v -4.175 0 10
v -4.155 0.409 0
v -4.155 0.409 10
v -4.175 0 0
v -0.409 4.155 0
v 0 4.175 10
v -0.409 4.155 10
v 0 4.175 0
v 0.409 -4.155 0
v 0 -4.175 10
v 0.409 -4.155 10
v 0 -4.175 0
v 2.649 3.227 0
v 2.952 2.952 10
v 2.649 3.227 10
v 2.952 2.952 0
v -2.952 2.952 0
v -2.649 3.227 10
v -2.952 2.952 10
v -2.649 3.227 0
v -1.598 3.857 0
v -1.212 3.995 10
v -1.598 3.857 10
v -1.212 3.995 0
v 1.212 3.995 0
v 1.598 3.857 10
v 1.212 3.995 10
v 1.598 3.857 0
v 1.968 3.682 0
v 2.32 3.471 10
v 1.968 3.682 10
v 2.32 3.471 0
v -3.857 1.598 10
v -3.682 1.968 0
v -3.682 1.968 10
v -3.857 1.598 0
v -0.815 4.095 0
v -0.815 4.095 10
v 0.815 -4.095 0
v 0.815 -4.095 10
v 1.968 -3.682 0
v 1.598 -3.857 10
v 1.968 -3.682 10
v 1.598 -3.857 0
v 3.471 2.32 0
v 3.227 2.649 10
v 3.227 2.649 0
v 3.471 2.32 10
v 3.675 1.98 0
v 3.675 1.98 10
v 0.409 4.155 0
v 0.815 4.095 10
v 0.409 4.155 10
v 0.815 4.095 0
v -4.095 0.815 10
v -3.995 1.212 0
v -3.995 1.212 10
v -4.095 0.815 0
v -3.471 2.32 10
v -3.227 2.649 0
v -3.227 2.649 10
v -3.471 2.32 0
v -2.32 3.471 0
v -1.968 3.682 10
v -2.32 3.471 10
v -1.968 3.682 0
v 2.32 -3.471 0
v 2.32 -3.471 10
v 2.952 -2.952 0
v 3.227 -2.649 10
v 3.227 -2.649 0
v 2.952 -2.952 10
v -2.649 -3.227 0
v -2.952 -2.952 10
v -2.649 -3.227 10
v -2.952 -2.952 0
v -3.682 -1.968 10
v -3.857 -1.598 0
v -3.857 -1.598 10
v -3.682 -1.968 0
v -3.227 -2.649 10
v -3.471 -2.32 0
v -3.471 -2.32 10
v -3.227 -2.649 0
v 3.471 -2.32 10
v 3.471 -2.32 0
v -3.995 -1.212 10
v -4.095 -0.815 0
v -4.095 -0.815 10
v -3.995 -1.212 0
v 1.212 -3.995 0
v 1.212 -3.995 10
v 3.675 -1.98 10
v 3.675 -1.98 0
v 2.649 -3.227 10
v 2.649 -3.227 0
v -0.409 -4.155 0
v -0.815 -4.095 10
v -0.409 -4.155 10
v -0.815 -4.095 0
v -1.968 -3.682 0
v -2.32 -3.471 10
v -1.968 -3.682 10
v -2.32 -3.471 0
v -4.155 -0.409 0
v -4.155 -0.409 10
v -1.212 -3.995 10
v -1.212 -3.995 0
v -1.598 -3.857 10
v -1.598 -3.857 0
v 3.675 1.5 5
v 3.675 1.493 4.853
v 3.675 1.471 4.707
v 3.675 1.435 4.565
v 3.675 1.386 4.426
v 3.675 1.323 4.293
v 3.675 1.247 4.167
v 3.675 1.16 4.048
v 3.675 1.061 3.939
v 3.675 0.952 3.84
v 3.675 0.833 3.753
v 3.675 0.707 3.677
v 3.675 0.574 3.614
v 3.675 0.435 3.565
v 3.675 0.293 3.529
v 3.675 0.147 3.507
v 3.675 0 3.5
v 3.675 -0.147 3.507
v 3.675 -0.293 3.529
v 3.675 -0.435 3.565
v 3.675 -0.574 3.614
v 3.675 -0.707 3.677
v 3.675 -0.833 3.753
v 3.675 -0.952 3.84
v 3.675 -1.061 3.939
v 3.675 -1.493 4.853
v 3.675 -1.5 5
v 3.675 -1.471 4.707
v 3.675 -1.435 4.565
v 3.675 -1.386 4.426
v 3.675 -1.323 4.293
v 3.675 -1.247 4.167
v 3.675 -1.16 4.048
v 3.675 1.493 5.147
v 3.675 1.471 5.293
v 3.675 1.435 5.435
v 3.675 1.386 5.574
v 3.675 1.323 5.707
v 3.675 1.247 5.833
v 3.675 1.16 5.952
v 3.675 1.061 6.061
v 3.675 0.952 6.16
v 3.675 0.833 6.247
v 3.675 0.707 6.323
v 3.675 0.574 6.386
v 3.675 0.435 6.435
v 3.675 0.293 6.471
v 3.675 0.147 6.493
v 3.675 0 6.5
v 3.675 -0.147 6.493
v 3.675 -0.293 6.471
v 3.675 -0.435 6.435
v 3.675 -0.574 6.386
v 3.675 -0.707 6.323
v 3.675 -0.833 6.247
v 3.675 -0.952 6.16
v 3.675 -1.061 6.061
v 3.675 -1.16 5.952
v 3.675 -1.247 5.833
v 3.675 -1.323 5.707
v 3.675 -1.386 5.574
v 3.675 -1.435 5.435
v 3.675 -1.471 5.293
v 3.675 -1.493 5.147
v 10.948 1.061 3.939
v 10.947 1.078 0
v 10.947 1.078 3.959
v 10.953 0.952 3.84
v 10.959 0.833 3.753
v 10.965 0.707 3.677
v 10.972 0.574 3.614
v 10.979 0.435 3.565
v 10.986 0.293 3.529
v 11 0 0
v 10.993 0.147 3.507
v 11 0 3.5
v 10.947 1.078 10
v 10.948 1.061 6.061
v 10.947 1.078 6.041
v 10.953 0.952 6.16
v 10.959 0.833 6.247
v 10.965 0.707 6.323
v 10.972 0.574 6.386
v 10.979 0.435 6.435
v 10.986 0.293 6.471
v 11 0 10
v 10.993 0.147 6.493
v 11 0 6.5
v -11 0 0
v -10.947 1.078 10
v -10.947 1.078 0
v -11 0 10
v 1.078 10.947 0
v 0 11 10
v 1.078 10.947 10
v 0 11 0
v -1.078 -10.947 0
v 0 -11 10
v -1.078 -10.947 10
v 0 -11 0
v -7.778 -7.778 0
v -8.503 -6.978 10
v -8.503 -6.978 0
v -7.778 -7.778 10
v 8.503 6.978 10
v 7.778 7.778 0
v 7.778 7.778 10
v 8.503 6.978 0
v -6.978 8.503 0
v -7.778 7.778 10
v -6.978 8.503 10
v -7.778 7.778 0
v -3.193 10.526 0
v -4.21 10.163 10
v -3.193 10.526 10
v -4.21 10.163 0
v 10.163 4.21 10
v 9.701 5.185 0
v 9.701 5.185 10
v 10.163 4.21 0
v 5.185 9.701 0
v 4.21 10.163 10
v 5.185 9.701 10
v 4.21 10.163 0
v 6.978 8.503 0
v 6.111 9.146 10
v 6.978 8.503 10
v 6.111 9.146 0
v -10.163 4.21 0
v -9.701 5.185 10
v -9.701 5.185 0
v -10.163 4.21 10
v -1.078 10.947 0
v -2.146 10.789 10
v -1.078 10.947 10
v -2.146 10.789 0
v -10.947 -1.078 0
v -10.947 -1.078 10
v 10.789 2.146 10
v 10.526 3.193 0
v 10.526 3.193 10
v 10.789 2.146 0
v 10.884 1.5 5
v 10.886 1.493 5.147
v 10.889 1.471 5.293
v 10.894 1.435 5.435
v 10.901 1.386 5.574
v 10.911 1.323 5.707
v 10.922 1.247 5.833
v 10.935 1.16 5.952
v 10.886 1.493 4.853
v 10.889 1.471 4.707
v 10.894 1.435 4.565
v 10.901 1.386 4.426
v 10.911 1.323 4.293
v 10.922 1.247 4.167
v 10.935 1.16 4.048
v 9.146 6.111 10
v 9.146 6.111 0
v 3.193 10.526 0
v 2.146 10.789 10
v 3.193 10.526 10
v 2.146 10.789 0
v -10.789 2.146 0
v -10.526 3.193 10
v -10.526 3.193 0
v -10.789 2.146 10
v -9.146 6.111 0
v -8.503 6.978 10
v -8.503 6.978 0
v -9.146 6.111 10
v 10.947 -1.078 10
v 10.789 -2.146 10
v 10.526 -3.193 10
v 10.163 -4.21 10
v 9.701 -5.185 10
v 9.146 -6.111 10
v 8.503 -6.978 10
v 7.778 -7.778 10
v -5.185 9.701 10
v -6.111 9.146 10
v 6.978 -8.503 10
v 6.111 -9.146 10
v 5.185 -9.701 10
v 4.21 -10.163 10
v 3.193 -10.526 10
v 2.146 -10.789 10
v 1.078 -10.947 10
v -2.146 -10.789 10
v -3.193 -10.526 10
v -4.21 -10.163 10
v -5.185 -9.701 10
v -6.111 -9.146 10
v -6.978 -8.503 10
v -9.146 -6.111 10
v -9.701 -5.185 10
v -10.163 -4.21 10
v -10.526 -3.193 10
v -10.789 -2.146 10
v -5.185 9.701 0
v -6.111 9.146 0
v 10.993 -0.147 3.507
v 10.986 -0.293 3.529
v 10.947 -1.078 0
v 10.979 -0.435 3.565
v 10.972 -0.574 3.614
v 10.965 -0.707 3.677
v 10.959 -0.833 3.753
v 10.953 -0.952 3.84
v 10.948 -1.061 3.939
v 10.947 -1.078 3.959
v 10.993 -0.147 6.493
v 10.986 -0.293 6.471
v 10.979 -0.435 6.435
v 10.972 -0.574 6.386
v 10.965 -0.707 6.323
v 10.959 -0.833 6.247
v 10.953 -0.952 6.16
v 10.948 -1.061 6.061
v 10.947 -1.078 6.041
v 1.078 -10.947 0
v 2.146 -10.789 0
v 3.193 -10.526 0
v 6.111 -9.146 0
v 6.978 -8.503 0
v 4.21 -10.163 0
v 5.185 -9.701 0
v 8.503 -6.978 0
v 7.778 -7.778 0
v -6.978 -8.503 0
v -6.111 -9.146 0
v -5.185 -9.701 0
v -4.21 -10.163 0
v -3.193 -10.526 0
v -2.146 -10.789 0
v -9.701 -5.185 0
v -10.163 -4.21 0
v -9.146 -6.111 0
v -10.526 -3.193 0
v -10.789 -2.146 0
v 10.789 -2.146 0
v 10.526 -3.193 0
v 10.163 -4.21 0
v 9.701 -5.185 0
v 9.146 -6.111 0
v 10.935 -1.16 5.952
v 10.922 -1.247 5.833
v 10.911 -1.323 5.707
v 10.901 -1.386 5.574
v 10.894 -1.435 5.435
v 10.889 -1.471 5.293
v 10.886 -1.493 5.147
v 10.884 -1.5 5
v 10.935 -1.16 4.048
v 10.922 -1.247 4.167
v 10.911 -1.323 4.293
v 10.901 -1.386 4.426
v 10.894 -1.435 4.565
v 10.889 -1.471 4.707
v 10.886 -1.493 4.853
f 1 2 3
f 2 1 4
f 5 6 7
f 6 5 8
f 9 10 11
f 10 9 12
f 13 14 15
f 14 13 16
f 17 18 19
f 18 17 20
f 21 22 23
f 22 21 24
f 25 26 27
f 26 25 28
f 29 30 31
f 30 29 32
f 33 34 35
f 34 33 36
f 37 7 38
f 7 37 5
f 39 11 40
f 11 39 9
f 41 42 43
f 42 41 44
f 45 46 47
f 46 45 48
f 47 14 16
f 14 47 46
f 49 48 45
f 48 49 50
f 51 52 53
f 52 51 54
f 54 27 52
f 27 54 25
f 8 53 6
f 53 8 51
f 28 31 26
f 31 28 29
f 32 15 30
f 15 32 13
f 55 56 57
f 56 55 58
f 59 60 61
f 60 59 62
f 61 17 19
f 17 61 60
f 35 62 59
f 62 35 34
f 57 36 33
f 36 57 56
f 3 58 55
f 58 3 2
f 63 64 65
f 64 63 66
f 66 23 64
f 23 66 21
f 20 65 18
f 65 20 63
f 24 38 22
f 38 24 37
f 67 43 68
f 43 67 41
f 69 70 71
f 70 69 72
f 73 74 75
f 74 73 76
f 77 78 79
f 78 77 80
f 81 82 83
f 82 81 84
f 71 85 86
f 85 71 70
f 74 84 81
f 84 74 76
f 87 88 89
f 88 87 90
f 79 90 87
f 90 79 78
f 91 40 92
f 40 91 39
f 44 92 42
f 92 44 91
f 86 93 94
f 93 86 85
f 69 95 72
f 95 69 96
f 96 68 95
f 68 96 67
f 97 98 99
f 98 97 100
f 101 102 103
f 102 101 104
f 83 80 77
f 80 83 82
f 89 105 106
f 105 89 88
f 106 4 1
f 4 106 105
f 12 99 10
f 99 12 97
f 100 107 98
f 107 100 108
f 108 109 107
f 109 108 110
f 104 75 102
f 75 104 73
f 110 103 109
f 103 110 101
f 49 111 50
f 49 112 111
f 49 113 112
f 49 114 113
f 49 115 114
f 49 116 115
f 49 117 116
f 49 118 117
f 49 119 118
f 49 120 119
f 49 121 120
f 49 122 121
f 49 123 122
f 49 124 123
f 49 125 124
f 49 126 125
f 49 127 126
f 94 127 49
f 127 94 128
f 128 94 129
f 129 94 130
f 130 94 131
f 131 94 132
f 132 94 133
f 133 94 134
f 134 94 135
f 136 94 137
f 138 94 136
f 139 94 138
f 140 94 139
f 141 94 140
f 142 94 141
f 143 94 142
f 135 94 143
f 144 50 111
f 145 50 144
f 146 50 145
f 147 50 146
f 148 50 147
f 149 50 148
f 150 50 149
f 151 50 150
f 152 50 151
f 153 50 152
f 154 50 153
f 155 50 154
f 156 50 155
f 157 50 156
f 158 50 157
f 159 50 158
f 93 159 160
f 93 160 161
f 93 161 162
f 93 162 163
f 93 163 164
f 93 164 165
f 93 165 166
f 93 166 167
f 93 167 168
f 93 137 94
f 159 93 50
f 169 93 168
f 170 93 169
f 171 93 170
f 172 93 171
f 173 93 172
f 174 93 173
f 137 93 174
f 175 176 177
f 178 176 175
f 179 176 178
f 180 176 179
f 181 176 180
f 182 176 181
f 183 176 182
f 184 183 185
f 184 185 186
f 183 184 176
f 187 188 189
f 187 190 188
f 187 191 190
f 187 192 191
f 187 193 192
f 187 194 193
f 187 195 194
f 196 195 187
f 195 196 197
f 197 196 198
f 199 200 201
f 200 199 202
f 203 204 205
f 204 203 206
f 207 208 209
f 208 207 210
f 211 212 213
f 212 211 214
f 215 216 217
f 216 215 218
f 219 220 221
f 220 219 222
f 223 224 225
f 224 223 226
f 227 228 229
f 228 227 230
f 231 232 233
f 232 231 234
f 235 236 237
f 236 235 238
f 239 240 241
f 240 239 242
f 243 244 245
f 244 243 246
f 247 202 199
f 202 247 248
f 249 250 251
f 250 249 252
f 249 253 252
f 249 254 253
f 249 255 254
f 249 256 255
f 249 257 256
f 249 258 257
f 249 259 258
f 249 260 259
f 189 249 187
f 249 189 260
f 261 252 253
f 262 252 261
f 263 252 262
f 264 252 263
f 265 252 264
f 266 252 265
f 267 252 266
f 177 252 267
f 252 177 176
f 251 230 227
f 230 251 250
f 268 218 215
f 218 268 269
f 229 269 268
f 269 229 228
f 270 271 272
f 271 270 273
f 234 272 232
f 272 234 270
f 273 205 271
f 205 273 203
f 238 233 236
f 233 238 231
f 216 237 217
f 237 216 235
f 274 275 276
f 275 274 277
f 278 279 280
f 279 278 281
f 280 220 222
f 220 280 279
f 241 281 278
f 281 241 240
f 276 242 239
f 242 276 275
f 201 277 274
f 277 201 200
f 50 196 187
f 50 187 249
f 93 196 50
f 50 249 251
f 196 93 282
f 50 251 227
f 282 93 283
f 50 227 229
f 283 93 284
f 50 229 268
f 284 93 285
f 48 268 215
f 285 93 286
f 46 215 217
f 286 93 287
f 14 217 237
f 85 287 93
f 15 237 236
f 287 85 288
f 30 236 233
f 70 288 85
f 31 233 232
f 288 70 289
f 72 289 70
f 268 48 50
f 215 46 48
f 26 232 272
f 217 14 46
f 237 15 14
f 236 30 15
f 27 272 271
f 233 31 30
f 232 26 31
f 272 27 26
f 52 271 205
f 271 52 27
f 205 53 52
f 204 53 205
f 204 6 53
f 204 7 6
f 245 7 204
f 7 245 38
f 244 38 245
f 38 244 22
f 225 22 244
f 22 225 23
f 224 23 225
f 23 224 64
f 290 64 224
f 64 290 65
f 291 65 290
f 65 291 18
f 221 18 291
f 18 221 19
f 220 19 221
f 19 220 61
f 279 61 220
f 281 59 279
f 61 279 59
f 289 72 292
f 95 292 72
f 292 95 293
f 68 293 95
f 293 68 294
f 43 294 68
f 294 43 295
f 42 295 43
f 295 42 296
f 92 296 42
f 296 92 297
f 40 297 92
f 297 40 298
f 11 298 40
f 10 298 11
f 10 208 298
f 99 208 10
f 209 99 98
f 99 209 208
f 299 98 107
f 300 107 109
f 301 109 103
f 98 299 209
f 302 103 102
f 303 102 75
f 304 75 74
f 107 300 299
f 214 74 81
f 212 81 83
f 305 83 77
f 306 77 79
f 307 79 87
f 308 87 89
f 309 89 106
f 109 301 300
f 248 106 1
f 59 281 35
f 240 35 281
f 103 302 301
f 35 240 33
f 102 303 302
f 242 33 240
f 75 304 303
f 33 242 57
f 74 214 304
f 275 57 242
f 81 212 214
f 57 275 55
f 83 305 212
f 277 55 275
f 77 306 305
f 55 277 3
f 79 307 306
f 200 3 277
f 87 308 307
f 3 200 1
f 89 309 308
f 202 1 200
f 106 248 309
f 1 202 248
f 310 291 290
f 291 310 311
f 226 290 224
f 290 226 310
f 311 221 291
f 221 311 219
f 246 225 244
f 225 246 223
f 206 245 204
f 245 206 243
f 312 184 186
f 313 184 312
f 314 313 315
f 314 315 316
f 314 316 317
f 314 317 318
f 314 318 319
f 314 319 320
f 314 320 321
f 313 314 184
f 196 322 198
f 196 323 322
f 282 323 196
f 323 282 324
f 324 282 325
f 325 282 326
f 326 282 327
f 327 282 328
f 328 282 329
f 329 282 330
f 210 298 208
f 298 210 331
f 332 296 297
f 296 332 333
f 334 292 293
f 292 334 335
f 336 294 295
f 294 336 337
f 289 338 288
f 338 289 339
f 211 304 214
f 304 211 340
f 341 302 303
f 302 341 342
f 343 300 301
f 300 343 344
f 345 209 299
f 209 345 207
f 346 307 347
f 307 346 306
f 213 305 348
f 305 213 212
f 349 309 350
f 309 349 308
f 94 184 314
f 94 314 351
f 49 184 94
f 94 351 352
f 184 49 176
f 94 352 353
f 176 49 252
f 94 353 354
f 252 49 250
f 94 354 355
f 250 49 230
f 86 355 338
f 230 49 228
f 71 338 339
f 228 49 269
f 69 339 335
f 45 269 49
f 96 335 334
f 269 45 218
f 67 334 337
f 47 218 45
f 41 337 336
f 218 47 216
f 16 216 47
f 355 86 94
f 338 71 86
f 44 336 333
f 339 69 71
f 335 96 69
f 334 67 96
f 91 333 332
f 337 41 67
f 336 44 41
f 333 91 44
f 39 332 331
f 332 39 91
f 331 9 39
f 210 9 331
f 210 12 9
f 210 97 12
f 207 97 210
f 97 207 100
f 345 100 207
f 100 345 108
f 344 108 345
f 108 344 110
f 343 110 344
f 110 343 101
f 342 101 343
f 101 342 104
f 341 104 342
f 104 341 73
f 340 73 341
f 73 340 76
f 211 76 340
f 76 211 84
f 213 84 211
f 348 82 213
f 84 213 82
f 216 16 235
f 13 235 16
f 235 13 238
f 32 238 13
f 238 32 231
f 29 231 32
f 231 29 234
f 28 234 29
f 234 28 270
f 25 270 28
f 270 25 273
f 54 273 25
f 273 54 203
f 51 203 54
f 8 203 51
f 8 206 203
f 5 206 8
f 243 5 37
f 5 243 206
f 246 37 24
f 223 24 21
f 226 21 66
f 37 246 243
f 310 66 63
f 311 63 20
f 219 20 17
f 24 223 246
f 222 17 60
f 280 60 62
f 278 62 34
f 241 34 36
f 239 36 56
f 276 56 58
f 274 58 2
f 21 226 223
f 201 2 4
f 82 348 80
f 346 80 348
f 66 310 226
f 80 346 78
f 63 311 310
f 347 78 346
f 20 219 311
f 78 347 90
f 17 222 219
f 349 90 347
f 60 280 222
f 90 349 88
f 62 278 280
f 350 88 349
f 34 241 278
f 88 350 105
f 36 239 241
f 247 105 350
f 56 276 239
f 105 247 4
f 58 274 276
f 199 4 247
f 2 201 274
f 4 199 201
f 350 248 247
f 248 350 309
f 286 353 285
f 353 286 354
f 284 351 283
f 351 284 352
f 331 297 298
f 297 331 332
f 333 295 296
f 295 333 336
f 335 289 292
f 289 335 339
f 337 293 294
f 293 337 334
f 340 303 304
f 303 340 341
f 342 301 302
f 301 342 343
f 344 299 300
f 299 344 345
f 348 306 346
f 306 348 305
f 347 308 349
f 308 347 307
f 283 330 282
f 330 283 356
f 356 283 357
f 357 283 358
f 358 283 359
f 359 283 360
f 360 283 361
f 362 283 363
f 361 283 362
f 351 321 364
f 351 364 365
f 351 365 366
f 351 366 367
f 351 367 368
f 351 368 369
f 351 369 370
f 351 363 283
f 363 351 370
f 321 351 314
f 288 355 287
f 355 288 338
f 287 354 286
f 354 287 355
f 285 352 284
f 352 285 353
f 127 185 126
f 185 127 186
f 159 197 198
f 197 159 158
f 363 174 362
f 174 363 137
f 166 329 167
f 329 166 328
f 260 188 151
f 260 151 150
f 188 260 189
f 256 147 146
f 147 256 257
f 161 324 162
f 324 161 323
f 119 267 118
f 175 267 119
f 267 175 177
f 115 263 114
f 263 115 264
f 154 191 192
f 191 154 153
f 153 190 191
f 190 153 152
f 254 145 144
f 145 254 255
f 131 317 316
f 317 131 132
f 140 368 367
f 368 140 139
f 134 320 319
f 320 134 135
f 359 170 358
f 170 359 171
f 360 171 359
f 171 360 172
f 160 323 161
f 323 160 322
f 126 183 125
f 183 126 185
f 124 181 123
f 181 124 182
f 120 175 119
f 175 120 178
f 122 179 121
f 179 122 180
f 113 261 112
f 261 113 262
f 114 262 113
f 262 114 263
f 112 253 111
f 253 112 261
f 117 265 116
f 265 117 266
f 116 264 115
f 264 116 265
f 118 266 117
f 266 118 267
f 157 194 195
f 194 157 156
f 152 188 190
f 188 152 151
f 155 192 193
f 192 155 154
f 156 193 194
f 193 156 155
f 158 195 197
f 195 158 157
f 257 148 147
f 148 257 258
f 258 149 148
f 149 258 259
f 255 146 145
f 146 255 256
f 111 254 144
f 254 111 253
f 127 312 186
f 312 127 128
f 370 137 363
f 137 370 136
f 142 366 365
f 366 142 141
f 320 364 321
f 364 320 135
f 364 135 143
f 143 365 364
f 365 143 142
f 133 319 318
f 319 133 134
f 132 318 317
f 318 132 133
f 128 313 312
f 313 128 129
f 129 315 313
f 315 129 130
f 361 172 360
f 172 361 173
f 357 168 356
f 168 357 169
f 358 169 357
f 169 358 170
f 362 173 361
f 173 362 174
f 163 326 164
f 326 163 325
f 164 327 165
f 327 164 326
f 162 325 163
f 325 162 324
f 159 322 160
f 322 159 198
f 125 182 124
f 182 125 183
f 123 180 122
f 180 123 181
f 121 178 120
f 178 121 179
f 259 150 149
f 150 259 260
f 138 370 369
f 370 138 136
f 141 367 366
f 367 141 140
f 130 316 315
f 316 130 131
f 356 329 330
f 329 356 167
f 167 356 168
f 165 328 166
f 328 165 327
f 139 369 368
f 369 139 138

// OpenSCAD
// Gen-EB — shaft collar with D-flat bore (set screw bears on the flat); print x4
include <parameters.scad>;
$fn = 64;
// D-flat keyed bore: flat faces +X (angle 0 = magnet pocket 0 = index notch)
module dflat_bore(h) {
    intersection() {
        cylinder(d=shaft_bore, h=h);
        translate([-shaft_bore, -shaft_bore, 0]) cube([shaft_bore + dflat_x, 2*shaft_bore, h]);
    }
}

od = 22; h = collar_h; set_d = 3.0;
difference() {
    cylinder(d=od, h=h);
    translate([0, 0, -0.1]) dflat_bore(h + 0.2);
    translate([0, 0, h/2]) rotate([0, 90, 0]) cylinder(d=set_d, h=od);
}
